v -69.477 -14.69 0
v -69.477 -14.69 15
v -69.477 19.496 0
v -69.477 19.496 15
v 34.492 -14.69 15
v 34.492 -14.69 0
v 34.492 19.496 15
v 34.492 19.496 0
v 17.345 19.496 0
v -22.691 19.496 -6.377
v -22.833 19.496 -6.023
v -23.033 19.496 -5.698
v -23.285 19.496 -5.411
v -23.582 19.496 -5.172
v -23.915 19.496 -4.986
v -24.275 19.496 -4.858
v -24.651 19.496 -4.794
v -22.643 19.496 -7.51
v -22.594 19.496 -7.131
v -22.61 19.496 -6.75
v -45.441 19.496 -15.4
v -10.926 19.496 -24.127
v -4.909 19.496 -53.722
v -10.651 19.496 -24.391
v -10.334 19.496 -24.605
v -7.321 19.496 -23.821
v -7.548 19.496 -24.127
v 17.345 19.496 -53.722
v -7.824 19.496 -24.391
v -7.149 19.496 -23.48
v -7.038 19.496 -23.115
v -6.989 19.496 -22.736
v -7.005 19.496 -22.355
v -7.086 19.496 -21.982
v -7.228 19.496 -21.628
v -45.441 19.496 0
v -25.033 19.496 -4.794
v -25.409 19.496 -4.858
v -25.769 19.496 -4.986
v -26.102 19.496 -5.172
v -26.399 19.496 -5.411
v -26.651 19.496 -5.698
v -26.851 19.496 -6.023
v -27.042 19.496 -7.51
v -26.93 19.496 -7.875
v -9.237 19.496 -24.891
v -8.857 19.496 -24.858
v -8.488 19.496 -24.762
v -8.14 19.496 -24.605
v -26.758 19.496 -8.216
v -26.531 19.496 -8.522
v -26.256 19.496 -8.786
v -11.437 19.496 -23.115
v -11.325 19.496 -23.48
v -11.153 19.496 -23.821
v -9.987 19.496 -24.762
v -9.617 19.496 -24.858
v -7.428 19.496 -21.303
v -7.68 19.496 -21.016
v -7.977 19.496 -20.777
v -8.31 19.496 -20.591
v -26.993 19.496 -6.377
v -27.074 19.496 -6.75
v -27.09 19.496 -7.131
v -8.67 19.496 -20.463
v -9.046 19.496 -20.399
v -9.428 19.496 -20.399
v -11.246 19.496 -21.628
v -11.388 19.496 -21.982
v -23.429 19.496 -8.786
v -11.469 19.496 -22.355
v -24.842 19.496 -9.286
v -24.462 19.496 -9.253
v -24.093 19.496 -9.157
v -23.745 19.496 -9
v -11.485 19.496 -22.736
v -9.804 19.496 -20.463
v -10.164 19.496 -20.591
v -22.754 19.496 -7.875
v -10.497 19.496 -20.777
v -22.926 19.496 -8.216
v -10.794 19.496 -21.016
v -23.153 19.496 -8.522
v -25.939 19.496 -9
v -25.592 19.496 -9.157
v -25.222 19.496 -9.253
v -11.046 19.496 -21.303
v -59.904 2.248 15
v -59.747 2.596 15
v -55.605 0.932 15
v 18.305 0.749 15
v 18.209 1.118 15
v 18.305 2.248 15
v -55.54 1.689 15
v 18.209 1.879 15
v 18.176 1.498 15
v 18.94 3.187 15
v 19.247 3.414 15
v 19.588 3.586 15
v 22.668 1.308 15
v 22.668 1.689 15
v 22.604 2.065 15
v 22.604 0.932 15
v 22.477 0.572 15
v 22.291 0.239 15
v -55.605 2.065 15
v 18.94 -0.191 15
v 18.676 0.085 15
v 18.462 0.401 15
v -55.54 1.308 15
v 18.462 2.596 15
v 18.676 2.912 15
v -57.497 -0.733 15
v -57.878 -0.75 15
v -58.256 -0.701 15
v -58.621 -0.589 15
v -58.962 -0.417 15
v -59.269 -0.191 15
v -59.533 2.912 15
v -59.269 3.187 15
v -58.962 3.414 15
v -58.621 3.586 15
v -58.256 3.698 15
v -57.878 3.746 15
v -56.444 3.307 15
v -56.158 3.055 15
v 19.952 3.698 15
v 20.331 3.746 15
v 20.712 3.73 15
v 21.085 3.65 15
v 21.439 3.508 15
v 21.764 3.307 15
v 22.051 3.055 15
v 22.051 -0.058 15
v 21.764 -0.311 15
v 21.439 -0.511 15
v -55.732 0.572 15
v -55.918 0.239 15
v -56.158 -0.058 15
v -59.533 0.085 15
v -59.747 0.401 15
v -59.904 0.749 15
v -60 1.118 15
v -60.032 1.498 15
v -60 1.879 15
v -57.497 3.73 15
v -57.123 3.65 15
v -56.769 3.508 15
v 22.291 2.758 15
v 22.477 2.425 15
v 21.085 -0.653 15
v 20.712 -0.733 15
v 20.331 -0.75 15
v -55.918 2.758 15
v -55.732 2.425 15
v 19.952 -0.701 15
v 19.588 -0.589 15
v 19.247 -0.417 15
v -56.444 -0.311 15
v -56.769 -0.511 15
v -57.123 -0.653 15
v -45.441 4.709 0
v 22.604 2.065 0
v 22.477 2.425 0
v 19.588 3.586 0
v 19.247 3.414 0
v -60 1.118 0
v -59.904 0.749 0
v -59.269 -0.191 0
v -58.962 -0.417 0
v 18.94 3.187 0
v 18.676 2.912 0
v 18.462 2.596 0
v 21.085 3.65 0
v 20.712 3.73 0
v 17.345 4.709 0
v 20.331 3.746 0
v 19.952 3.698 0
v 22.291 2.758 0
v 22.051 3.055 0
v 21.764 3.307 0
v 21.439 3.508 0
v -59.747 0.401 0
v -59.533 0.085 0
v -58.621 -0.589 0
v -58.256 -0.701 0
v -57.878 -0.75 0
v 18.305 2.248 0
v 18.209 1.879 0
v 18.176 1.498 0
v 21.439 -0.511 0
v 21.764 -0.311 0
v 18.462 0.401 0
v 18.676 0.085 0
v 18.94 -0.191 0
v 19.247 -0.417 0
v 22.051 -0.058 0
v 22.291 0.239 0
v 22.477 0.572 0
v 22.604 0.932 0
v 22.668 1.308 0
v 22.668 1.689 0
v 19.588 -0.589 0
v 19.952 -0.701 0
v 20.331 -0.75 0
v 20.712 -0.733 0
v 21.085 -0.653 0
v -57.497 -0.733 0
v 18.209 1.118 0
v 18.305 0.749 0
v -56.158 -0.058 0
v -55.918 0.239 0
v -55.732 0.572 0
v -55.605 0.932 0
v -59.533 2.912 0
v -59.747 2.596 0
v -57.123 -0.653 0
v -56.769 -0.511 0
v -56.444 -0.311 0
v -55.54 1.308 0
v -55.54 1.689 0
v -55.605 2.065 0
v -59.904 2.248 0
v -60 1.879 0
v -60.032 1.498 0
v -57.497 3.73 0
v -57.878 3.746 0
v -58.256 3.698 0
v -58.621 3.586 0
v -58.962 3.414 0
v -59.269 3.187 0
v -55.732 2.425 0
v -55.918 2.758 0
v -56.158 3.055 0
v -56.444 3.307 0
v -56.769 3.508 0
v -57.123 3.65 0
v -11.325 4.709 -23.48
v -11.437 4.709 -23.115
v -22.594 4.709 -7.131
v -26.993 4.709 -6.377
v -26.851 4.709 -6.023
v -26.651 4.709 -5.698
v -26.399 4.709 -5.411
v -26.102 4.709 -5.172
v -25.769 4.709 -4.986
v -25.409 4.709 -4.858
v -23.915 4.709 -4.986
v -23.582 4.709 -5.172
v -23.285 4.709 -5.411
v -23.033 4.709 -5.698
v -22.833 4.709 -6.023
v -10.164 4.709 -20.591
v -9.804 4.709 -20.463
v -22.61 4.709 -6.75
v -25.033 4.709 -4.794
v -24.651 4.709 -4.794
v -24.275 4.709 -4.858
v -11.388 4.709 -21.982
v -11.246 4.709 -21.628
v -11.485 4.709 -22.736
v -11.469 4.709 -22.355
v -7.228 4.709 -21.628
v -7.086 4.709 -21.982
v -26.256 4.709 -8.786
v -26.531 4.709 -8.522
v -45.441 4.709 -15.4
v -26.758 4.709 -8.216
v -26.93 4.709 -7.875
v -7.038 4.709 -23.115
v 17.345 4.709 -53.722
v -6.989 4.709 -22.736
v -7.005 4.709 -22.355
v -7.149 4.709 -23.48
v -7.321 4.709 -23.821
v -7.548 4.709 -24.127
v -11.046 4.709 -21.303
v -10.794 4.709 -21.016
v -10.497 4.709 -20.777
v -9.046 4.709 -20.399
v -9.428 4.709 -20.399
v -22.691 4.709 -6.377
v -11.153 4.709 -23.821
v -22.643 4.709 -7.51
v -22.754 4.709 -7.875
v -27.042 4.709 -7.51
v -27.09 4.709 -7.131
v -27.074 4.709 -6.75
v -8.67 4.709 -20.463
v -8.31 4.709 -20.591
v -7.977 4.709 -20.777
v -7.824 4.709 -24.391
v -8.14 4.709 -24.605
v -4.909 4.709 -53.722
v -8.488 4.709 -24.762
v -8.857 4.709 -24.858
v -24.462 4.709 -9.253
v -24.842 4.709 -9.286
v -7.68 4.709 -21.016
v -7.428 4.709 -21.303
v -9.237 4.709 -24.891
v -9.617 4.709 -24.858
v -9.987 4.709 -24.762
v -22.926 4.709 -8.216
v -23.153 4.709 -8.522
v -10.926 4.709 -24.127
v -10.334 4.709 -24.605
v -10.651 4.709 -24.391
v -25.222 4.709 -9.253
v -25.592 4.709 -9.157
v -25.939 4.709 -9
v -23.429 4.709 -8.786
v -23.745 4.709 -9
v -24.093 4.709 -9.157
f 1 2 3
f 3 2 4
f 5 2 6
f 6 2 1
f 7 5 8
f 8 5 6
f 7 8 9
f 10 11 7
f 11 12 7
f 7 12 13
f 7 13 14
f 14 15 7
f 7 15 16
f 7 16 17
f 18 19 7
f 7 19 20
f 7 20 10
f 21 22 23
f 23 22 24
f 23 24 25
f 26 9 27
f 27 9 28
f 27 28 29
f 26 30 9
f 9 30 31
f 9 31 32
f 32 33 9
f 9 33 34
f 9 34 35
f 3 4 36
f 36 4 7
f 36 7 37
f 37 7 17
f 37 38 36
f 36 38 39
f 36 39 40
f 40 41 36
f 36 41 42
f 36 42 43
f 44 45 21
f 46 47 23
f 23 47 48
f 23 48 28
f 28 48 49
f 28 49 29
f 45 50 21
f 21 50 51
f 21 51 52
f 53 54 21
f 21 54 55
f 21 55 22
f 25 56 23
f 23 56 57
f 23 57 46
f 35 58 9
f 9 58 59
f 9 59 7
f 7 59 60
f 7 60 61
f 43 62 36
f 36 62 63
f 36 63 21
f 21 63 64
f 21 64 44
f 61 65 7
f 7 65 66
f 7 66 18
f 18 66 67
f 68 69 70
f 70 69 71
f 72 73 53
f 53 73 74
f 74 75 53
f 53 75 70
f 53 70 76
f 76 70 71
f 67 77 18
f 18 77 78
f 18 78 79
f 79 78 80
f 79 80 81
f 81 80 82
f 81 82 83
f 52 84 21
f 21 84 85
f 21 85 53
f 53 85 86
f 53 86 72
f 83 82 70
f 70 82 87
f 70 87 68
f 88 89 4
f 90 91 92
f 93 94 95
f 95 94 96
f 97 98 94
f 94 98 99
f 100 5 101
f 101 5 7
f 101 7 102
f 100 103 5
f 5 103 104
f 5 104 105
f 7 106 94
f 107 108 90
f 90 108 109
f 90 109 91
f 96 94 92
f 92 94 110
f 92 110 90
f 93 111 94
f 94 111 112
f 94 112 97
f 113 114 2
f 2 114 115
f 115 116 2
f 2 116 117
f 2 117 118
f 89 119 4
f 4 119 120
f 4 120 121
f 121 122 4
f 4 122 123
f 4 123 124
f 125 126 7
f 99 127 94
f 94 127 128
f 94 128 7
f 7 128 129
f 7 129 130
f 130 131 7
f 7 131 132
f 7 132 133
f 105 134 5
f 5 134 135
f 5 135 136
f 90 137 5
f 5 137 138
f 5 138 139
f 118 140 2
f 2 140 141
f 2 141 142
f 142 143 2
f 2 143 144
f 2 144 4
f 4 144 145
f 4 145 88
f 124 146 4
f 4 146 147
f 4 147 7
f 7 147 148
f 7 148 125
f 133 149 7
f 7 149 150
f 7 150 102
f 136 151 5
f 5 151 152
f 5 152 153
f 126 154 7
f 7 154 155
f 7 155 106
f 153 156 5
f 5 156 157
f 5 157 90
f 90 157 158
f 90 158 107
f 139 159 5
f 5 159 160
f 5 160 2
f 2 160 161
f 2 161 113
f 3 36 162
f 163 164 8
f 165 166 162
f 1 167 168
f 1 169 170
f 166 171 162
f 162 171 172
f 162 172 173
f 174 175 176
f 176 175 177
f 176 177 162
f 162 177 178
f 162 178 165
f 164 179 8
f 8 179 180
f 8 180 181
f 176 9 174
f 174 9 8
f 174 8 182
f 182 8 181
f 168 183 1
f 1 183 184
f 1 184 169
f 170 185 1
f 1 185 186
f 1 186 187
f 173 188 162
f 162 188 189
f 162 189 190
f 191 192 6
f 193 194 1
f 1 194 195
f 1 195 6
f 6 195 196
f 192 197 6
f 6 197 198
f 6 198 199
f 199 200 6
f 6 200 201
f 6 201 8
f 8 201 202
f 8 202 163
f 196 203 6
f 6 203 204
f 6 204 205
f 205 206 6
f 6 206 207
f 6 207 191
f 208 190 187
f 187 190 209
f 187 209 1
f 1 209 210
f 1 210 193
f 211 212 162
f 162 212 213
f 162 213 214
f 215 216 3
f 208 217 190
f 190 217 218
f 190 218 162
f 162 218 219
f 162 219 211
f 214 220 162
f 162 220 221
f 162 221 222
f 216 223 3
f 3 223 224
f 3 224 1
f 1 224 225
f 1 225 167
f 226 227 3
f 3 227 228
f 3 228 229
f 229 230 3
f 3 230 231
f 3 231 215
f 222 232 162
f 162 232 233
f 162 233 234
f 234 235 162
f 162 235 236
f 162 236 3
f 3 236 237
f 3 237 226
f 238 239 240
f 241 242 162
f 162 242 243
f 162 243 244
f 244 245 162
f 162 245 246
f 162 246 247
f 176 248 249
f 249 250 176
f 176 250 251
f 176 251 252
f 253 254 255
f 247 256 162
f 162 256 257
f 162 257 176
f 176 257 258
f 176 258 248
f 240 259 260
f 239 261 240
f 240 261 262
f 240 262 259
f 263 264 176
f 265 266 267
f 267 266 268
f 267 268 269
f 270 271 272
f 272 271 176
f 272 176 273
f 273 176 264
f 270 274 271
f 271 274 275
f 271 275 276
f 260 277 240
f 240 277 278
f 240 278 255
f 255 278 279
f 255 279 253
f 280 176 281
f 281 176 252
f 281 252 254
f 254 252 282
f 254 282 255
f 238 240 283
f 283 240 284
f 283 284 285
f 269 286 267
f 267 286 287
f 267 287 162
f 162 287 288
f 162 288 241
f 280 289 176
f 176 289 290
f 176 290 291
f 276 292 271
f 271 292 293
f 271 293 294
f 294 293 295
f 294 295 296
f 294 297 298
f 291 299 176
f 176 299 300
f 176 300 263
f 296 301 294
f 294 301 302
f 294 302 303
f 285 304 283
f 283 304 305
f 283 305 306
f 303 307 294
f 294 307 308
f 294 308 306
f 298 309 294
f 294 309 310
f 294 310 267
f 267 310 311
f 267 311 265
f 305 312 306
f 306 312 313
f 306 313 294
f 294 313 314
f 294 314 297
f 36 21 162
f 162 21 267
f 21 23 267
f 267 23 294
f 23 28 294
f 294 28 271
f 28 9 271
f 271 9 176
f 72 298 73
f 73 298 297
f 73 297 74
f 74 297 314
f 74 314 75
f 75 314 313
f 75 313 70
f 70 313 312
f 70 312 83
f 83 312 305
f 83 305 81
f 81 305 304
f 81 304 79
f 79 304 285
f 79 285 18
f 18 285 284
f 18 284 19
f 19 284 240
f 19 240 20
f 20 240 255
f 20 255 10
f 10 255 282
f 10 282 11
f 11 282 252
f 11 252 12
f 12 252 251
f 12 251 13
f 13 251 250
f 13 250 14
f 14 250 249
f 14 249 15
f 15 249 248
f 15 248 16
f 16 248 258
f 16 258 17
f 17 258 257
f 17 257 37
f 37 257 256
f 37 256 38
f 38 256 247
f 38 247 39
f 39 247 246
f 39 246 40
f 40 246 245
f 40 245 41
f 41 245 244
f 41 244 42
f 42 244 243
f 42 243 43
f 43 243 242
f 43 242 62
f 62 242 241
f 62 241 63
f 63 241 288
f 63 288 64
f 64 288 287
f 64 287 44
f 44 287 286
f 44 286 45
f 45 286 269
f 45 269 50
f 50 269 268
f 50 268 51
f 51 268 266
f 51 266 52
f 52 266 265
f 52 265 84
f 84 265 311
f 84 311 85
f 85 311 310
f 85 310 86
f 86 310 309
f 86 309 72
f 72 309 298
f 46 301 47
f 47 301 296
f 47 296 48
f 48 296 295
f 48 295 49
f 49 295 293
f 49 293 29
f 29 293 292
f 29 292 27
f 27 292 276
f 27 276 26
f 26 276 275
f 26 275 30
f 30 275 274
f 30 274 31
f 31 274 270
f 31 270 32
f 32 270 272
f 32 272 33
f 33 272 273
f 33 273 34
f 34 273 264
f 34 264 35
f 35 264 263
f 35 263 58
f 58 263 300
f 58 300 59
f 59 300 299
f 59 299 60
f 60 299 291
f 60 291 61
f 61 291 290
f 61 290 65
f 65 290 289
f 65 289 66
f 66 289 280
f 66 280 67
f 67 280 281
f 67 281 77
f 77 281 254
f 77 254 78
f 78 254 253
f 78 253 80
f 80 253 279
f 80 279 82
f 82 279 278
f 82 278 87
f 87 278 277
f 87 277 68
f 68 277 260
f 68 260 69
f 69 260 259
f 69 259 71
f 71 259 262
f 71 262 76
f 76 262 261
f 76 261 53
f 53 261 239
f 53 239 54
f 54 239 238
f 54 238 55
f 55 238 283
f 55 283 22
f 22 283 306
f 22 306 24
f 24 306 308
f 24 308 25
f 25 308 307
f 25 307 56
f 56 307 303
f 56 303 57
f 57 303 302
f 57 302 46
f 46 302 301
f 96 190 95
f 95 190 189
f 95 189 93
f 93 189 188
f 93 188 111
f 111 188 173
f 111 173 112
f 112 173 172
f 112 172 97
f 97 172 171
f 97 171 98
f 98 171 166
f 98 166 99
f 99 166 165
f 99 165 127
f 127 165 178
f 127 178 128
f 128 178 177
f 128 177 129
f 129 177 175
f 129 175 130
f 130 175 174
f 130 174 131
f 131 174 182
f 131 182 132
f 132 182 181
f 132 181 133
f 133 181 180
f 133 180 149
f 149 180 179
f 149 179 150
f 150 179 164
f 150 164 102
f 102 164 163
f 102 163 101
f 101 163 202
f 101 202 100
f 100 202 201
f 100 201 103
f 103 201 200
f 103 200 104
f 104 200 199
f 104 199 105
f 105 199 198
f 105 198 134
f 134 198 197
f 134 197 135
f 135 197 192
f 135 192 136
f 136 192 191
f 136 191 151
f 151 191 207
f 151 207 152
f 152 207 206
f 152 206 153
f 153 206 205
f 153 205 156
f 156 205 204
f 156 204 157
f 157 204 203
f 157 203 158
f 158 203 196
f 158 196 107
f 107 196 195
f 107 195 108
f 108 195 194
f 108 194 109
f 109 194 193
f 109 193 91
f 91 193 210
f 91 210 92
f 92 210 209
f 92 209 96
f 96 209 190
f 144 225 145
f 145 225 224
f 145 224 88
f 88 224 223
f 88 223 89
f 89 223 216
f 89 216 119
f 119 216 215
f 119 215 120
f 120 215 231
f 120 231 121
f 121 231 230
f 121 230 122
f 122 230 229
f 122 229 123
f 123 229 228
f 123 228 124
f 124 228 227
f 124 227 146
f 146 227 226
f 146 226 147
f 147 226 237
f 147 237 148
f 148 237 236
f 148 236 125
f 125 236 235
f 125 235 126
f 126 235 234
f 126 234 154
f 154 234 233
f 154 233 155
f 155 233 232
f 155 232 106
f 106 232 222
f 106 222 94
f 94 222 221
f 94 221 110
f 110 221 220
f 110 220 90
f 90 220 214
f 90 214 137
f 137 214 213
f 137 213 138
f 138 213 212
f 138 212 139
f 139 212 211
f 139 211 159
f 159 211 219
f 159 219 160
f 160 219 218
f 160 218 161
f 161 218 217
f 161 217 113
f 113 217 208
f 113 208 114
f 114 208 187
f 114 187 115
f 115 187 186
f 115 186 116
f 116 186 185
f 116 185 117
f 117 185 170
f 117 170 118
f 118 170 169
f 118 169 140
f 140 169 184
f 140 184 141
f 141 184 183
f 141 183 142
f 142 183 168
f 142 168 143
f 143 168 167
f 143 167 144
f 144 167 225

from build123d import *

# Parameters (mm, degrees)
SKETCH1_W            = 103.968410754
SKETCH1_H            = 34.186058554
BOSS_EXTRUDE1_DEPTH  = 15
SKETCH2_W            = 103.968410754
SKETCH2_H            = 14.786910166
BOSS_EXTRUDE2_DEPTH  = 60
CUT_EXTRUDE1_DEPTH   = 94.826164315
M4_CLEARANCE_HOLE1_D = 4.5
M4_CLEARANCE_HOLE2_D = 4.5


with BuildPart() as part:
    # Sketch1 → Boss-Extrude1 (new body)
    with BuildSketch(Plane.XY):
        with Locations((-17.492568813, 2.403154481)):
            Rectangle(SKETCH1_W, SKETCH1_H)
    extrude(amount=BOSS_EXTRUDE1_DEPTH)

    # Sketch2 → Boss-Extrude2 (add)
    with BuildSketch(Plane(origin=(0, 0, 0), x_dir=(-1, 0, 0), z_dir=(0, 0, -1))):
        with Locations((17.492568813, 12.102728675)):
            Rectangle(SKETCH2_W, SKETCH2_H)
    extrude(amount=BOSS_EXTRUDE2_DEPTH)

    # Sketch3 → Cut-Extrude1 (cut, through all)
    with BuildSketch(Plane.XZ.offset(-4.709273592)):
        Polygon((-45.441256031, 0), (-45.441256031, -15.4), (-4.909163254, -53.722384085), (17.34490568, -53.722384085), (17.34490568, 0), (34.491636564, 0), (34.491636564, -60), (-69.47677419, -60), (-69.47677419, 0), align=None)
    extrude(amount=-CUT_EXTRUDE1_DEPTH, mode=Mode.SUBTRACT)

    # M4 Clearance Hole1 (through all)
    with Locations(Plane(origin=(-9.237078097, 4.709273592, -22.640821114), x_dir=(-1, 0, 0), z_dir=(0, -1, 0))):
        with Locations((0, 0), (15.604992815, -15.604992814)):
            Hole(M4_CLEARANCE_HOLE1_D / 2)

    # M4 Clearance Hole2 (through all)
    with Locations(Plane(origin=(-57.782319431, 1.498461161, 0), x_dir=(-1, 0, 0), z_dir=(0, 0, -1))):
        with Locations((0, 0), (-78.208808727, 0)):
            Hole(M4_CLEARANCE_HOLE2_D / 2)


solid = part.part
